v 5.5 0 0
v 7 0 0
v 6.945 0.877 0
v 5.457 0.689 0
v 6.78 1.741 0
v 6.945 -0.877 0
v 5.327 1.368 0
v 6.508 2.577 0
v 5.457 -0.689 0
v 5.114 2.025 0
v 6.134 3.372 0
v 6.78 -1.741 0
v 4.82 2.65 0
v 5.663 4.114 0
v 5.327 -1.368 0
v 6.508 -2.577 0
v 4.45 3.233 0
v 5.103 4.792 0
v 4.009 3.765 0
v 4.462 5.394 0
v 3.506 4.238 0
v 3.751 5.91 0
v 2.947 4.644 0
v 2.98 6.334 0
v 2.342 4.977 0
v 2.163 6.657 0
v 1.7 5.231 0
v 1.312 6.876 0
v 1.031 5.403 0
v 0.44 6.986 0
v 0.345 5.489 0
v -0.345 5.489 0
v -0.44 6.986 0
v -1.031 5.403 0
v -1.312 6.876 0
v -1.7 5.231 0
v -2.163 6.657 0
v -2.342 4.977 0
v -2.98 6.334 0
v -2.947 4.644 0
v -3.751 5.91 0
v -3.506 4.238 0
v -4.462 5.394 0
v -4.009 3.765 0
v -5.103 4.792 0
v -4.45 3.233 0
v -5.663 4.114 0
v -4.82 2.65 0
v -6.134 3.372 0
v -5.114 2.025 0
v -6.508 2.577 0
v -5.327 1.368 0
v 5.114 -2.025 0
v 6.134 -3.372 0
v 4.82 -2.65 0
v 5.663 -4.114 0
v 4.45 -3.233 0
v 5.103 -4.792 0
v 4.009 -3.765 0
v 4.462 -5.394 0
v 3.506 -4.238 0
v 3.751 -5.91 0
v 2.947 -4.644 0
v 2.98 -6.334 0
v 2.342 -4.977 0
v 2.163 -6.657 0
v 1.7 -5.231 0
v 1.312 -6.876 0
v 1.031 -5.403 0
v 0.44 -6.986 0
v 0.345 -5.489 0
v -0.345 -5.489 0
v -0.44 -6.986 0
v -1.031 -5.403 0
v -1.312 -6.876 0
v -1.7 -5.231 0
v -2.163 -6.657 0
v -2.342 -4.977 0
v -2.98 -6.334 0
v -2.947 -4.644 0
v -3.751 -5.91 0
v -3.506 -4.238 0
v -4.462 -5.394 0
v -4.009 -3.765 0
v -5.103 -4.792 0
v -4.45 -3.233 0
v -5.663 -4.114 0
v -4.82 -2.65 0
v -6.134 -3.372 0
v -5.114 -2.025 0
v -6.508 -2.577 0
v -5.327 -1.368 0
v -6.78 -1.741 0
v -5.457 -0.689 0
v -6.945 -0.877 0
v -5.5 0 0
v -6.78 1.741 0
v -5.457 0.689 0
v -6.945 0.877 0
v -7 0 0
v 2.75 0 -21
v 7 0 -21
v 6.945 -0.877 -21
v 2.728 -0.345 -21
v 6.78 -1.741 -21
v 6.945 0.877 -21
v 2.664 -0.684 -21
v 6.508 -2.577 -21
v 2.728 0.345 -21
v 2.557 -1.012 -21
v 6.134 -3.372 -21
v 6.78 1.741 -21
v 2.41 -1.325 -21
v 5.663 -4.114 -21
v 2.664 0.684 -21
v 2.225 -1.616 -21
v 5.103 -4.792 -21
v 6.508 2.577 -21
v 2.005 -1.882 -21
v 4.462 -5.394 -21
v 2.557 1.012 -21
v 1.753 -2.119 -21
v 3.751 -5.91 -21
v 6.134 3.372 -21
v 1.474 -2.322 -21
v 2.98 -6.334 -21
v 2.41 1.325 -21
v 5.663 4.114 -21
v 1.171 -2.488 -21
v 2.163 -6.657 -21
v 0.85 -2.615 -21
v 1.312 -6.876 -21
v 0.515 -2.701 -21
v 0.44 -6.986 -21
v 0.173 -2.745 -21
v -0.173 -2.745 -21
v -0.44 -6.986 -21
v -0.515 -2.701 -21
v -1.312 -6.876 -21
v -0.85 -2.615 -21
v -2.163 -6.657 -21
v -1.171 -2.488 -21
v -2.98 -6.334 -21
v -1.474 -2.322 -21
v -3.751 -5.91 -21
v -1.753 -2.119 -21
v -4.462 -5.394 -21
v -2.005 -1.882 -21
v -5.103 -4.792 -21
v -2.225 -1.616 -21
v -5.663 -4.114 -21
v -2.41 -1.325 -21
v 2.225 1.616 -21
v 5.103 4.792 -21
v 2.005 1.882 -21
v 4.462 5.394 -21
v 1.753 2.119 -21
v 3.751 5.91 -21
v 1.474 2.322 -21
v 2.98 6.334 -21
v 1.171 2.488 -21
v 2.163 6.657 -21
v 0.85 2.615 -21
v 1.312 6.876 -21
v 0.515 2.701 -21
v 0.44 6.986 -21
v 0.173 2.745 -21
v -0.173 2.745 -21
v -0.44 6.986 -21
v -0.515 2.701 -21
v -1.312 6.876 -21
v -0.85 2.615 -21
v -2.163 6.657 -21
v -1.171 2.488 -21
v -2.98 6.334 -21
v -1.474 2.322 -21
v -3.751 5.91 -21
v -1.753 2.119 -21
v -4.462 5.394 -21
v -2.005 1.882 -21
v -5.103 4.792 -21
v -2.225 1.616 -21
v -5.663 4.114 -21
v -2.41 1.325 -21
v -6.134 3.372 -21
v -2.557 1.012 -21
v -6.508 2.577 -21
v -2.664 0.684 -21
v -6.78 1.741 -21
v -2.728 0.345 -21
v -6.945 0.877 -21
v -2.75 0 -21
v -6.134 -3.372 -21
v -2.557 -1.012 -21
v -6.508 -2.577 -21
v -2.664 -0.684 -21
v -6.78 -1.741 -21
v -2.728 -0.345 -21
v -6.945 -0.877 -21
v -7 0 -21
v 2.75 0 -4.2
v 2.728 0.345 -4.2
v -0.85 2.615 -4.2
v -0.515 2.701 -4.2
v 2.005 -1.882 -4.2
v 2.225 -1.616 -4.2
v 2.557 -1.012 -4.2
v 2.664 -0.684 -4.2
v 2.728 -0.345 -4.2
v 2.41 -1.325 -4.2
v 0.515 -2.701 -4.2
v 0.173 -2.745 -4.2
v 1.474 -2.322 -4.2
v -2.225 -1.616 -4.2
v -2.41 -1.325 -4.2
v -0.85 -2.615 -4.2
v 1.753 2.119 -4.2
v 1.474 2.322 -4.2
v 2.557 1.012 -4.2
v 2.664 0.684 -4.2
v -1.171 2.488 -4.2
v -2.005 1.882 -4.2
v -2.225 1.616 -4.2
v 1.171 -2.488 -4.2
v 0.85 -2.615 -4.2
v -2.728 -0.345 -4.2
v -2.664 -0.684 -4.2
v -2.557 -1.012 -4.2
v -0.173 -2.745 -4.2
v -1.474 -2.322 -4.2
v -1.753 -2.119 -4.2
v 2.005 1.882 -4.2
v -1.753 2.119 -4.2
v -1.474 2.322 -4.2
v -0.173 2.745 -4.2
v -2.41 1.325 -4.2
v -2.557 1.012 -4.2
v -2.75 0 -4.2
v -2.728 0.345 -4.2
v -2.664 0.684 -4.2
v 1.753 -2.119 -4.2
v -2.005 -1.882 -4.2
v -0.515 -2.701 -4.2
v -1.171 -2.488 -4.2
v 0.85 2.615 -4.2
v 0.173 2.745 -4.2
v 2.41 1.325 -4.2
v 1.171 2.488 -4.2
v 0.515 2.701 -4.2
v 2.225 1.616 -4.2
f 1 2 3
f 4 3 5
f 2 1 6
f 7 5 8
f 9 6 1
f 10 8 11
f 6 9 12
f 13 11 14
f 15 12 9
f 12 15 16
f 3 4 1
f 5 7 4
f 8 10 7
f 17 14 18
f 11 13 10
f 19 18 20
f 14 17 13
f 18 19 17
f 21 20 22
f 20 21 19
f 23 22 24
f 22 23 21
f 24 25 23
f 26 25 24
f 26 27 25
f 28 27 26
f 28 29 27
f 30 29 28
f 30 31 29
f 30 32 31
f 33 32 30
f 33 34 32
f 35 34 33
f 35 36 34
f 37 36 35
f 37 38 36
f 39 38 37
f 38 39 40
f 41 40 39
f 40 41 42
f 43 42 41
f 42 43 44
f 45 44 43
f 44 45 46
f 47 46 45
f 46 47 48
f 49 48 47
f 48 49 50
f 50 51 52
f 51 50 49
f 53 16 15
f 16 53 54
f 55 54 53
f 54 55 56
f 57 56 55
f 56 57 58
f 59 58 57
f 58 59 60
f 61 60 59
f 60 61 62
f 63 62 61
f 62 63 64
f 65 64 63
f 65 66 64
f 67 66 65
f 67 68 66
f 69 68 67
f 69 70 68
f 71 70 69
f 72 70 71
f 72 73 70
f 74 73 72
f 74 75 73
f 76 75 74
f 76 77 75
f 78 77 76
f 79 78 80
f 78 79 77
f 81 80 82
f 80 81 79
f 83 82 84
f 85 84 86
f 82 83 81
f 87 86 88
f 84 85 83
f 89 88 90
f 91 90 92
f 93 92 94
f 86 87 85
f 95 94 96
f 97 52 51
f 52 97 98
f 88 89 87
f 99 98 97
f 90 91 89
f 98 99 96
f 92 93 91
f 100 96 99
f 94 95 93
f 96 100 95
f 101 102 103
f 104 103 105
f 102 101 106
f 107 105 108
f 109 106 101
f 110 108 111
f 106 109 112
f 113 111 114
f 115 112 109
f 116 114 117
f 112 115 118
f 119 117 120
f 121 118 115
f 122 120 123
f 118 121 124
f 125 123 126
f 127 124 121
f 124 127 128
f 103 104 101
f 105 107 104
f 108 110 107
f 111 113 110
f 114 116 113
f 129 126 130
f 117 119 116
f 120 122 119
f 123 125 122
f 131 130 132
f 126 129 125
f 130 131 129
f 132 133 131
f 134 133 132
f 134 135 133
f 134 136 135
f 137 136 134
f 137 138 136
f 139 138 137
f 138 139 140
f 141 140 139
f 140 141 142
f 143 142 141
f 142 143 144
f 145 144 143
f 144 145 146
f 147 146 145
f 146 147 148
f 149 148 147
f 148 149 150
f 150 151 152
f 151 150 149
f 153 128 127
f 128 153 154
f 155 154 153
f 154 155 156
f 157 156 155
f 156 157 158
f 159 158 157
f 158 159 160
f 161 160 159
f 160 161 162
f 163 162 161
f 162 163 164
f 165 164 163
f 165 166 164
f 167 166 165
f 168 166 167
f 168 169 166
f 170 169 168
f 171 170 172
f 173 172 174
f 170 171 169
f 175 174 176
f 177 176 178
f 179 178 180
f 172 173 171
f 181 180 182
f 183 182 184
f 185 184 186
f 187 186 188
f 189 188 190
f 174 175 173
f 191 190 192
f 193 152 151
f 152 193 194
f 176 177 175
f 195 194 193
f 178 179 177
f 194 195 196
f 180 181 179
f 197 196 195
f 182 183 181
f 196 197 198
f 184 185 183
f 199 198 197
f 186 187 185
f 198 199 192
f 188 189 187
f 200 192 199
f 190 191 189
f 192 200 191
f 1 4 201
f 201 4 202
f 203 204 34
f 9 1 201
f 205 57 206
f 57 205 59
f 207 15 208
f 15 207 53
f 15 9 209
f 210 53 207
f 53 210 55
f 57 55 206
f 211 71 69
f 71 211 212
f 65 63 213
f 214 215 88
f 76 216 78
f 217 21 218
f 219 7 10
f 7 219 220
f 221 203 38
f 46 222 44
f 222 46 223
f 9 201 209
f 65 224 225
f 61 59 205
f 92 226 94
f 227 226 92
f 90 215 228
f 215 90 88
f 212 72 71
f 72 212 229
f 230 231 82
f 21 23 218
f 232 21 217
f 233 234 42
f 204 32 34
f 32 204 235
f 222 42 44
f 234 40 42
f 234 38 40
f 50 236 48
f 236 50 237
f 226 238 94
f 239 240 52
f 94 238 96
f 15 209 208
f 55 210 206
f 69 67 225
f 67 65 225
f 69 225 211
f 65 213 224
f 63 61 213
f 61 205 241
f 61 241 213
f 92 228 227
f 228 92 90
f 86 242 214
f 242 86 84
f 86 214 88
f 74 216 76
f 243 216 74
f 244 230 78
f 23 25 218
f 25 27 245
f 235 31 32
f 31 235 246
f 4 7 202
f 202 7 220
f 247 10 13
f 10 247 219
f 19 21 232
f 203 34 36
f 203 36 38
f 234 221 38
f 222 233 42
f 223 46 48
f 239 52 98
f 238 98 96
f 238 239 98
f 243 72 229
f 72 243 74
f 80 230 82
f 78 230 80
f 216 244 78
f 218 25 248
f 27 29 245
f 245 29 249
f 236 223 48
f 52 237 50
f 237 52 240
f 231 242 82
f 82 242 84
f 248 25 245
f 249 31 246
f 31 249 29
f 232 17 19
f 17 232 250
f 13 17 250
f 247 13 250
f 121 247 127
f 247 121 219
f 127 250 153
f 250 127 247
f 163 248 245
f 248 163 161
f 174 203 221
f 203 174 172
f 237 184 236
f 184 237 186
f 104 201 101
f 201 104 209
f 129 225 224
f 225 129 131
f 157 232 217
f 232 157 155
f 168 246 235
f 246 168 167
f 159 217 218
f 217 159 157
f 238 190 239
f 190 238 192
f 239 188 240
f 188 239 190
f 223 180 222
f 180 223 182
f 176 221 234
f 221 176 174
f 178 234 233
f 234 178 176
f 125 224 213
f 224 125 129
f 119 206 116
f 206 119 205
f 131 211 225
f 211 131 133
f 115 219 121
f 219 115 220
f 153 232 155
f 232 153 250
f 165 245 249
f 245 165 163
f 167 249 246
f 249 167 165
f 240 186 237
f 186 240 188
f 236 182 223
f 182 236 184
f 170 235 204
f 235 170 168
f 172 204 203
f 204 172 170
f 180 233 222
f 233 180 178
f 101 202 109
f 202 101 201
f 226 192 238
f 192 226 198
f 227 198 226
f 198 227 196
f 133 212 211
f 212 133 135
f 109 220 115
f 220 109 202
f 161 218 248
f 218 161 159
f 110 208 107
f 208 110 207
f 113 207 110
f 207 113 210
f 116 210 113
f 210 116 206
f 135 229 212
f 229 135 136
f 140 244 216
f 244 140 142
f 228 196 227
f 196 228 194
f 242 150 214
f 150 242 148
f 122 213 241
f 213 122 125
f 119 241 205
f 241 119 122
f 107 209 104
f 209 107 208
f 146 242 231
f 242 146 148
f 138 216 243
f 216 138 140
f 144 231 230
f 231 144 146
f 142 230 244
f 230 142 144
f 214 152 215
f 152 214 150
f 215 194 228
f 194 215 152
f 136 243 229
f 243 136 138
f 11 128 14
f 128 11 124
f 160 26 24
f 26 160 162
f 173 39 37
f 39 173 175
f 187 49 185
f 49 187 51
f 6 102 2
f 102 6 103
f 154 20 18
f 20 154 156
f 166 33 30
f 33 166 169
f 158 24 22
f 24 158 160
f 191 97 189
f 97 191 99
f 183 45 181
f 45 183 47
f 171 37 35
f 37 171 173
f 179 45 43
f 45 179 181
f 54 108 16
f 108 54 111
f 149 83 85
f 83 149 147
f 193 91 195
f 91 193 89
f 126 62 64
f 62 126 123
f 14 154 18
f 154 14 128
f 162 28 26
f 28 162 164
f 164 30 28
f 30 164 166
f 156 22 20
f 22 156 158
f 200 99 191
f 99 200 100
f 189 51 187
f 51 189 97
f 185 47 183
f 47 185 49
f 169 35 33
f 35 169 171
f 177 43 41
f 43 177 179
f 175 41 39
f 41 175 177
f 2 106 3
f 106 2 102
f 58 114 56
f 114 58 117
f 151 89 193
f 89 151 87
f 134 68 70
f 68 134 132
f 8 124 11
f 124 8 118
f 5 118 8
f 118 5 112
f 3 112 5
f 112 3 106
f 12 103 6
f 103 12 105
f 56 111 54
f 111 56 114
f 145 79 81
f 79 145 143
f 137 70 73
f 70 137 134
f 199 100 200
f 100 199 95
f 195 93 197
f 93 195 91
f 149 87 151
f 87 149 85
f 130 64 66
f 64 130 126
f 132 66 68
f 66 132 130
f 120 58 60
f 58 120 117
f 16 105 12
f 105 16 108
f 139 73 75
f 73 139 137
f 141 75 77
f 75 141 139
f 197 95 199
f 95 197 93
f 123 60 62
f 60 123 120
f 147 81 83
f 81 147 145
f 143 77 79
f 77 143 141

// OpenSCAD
$fn = 50;


difference() {
	union() {
		translate(v = [0, 0, -21.0000000000]) {
			cylinder(h = 21, r = 7.0000000000);
		}
	}
	union() {
		translate(v = [0, 0, 0]) {
			rotate(a = [0, 0, 0]) {
				difference() {
					union() {
						#translate(v = [0, 0, -21.0000000000]) {
							cylinder(h = 21, r = 2.2500000000);
						}
						#translate(v = [0, 0, -4.2000000000]) {
							cylinder(h = 4.2000000000, r = 7.0000000000, r1 = 2.7500000000, r2 = 5.5000000000);
						}
						#translate(v = [0, 0, -21.0000000000]) {
							cylinder(h = 21, r = 2.7500000000);
						}
						#translate(v = [0, 0, -21.0000000000]) {
							cylinder(h = 21, r = 2.2500000000);
						}
					}
					union();
				}
			}
		}
	}
}
